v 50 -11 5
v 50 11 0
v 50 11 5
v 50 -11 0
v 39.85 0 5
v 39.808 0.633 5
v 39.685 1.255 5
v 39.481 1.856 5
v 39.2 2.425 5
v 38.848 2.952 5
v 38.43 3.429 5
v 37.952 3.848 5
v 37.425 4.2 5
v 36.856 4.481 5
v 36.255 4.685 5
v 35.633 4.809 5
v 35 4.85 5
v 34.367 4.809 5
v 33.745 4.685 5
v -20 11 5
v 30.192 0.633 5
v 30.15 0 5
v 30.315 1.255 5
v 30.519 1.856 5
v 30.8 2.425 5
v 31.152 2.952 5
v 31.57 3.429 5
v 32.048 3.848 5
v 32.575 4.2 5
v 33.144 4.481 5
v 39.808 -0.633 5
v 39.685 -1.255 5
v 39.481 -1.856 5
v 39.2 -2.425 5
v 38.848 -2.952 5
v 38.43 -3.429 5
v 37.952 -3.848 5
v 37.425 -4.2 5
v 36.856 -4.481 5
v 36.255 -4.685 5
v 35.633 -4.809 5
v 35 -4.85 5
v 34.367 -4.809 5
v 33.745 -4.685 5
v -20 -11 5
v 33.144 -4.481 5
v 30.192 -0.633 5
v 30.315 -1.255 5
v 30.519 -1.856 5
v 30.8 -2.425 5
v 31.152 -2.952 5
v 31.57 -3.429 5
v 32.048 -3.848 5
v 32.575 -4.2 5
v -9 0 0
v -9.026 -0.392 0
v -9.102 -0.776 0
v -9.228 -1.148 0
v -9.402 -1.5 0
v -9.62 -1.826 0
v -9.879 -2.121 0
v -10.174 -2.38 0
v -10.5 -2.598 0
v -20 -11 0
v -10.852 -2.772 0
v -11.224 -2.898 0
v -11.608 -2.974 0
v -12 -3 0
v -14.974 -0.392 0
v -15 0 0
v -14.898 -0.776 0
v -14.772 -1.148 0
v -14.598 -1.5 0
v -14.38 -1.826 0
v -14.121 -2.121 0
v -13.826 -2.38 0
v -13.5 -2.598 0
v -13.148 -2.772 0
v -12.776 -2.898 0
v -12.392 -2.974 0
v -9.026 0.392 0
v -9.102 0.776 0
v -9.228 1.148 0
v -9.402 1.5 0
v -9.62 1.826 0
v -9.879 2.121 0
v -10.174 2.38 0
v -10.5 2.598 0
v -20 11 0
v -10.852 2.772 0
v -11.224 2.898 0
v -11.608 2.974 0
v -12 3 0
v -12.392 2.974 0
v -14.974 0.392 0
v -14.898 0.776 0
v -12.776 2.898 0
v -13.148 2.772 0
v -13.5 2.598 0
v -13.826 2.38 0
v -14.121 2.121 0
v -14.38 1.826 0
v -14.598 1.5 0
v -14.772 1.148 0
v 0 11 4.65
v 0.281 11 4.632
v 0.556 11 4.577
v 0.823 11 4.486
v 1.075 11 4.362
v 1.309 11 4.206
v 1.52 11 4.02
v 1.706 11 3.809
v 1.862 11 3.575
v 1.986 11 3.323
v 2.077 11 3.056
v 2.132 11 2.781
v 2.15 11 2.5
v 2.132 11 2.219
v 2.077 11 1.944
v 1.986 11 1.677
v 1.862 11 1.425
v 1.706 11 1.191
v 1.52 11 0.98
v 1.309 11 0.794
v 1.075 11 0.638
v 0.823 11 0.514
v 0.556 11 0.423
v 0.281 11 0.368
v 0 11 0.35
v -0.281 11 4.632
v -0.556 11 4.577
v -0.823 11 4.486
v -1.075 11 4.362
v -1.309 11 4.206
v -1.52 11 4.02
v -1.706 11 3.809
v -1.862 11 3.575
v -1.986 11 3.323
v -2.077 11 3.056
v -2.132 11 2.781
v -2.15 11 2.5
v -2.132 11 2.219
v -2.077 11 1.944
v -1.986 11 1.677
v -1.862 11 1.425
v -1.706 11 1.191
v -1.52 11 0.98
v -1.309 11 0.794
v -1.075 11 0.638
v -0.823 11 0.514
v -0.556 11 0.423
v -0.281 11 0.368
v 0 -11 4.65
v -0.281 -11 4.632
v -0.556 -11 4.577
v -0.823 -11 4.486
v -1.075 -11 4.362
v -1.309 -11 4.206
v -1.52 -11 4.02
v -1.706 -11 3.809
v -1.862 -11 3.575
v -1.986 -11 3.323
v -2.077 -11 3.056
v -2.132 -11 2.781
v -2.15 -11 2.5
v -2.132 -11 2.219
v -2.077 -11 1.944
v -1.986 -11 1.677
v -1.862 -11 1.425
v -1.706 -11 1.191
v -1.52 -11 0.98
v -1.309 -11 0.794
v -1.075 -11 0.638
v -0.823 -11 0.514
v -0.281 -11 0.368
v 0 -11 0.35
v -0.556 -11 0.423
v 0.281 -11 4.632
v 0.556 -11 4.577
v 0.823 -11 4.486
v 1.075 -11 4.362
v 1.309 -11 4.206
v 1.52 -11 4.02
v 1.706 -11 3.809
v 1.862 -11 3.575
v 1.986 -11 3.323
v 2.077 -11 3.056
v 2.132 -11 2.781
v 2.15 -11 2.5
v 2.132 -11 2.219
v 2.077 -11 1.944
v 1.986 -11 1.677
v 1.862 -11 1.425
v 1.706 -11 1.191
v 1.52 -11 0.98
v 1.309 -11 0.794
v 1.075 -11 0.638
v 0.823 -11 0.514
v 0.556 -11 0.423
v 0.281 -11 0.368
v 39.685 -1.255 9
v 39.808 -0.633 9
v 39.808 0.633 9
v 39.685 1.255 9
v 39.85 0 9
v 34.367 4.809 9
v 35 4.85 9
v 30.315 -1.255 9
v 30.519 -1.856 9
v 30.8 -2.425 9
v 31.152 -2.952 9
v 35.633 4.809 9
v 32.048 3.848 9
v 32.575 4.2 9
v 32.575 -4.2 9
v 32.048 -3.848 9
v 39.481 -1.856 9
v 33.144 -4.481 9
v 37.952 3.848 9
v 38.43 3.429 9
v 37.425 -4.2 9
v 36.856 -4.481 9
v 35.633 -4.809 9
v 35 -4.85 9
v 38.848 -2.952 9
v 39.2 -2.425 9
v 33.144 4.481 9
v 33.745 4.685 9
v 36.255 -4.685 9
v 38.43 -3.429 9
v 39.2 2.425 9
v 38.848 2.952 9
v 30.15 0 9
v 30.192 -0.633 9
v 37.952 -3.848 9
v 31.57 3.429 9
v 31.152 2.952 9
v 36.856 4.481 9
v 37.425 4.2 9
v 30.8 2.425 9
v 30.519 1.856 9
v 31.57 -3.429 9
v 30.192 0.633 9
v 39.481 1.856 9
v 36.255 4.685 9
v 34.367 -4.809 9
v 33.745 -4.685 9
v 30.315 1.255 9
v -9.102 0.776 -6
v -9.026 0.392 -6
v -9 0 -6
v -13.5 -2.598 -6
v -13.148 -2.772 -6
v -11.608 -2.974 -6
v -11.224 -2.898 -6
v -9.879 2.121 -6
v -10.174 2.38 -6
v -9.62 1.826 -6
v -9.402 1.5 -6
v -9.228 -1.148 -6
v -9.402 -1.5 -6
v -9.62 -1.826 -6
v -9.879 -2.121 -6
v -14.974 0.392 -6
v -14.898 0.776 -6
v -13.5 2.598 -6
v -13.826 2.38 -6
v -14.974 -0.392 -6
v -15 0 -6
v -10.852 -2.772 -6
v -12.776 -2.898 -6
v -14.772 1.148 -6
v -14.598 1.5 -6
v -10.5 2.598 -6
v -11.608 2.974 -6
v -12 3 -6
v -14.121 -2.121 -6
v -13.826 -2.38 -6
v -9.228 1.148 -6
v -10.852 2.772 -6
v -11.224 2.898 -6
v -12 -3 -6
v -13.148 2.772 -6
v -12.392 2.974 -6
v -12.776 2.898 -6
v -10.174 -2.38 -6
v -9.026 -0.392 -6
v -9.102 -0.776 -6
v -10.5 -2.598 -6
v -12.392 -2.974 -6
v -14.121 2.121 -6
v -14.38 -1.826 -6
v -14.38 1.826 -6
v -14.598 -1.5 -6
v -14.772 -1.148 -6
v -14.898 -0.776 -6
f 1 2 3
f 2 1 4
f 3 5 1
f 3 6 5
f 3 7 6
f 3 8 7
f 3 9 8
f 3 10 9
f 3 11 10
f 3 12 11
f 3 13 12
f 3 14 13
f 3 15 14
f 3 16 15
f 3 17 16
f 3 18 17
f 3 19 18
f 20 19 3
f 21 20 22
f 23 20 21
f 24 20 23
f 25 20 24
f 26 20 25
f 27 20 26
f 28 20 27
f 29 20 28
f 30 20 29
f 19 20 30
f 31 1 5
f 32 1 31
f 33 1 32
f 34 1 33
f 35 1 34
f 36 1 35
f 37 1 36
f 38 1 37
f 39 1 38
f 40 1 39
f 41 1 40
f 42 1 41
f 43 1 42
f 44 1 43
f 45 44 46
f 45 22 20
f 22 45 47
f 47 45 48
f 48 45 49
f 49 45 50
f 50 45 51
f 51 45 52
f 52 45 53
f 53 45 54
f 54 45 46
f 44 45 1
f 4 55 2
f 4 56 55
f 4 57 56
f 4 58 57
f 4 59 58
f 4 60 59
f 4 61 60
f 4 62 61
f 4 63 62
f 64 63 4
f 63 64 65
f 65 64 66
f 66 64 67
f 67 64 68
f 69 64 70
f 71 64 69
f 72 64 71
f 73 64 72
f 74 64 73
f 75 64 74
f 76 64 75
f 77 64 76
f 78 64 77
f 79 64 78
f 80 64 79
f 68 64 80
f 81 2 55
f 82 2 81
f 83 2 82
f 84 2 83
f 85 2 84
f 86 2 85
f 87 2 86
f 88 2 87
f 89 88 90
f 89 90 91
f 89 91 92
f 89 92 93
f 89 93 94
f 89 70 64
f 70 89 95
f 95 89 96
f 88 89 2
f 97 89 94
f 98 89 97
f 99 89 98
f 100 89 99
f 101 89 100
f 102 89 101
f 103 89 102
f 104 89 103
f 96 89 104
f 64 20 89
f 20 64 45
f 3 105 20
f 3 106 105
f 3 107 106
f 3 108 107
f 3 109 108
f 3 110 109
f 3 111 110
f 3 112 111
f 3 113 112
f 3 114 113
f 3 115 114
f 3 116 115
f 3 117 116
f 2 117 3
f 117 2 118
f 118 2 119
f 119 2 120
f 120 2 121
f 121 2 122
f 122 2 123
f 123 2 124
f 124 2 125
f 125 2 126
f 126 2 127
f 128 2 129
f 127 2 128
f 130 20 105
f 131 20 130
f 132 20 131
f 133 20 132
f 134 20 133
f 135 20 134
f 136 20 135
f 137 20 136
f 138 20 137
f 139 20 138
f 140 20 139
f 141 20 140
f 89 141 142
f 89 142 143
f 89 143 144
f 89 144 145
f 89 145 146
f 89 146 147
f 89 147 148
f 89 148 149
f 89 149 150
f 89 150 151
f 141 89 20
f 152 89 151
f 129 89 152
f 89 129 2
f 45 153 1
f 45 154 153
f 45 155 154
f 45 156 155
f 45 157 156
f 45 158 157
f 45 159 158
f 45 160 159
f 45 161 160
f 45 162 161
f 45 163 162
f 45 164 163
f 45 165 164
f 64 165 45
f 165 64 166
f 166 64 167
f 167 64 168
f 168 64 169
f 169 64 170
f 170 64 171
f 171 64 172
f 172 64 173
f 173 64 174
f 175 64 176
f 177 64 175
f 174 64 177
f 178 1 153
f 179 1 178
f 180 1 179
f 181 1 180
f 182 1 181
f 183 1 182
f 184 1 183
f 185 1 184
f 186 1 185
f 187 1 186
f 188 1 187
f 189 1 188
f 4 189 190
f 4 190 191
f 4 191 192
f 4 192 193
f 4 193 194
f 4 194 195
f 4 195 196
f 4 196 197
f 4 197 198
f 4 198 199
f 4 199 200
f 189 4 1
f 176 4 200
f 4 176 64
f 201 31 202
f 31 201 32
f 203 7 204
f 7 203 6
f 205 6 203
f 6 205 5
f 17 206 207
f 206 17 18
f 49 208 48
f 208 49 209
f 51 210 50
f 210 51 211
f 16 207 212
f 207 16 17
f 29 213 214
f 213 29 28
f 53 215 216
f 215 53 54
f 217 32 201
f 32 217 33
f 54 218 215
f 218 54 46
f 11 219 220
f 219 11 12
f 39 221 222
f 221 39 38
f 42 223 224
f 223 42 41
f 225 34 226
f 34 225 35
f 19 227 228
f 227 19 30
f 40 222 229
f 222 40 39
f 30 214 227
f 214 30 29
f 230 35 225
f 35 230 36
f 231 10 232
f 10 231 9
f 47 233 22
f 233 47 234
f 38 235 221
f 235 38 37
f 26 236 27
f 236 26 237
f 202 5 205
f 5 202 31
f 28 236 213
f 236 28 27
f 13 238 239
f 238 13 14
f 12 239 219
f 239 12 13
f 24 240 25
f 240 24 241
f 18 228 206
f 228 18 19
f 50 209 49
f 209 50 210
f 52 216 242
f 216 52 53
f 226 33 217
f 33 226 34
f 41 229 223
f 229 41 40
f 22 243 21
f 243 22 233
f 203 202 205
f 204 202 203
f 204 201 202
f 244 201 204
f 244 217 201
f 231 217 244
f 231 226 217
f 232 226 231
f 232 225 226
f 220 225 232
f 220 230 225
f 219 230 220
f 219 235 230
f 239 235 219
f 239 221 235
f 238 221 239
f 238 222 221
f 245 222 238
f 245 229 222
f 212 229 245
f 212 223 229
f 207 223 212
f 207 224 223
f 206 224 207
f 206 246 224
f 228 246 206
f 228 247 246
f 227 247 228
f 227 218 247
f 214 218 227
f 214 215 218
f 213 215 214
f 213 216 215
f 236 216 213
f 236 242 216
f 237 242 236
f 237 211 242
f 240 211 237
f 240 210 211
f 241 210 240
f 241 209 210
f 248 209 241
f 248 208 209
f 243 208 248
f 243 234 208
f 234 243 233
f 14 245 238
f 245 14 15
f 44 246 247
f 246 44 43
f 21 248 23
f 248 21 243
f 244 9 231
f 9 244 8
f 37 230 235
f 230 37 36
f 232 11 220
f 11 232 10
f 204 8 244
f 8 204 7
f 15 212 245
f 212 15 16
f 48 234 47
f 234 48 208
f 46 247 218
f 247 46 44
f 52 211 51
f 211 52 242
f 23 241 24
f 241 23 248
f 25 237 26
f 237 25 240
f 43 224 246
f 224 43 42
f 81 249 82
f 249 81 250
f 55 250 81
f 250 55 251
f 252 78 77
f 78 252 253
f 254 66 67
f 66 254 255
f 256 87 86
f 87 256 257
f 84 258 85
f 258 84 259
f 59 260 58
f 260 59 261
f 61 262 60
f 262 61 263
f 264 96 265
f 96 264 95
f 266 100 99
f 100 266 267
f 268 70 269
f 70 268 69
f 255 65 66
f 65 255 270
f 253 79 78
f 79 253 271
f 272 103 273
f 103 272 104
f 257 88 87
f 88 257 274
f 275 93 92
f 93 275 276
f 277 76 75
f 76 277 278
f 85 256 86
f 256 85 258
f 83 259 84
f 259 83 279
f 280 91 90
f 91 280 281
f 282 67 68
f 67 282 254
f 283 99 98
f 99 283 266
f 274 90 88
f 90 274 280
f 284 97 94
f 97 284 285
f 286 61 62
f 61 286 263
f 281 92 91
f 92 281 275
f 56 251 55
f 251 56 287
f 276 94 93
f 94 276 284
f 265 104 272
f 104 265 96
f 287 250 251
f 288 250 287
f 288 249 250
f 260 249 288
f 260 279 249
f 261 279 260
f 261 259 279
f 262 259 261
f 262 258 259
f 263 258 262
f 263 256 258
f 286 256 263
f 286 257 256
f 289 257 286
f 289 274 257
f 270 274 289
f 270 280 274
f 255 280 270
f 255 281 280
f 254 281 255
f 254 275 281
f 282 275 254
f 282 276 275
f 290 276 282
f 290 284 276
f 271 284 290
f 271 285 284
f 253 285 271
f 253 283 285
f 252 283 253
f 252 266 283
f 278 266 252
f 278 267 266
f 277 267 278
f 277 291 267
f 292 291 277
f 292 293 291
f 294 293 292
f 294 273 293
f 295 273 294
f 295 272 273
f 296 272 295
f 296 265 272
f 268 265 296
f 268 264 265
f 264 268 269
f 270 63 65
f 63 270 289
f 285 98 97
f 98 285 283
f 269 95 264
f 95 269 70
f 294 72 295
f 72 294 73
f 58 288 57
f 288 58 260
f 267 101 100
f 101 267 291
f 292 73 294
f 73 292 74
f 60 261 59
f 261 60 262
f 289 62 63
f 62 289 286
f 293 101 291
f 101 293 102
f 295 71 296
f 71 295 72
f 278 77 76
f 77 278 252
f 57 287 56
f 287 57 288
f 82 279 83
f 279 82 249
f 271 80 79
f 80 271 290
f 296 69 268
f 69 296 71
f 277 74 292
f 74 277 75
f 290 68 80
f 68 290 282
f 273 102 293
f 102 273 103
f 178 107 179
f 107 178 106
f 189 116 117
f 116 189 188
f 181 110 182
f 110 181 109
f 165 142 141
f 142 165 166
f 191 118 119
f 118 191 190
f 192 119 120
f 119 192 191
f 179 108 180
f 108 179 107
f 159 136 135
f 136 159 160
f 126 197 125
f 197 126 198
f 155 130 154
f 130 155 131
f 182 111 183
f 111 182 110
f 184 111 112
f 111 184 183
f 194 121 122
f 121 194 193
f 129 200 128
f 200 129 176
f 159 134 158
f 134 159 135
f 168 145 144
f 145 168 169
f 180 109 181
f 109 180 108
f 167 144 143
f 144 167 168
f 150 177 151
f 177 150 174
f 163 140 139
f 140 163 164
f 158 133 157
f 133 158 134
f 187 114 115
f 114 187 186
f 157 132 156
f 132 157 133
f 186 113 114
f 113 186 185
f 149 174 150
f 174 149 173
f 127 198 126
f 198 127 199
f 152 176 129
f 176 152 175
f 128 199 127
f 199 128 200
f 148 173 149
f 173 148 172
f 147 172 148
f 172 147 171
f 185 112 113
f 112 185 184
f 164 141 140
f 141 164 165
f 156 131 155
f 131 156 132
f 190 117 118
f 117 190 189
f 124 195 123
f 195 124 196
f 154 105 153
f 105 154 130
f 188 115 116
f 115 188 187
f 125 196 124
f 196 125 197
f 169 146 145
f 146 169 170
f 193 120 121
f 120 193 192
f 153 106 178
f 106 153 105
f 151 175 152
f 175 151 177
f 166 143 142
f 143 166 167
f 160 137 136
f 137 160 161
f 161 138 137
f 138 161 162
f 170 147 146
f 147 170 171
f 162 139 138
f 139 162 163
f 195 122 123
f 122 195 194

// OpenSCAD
// file: params.scad
// Shared measurements for the hookswitch assembly (handset / hook / cradle / switch).
// MEASURE YOUR ACTUAL HANDSET AND SWITCH AND EDIT THESE before printing —
// defaults are typical old-telephone-handset / generic microswitch dimensions.

// --- Handset ---
handset_barrel_d   = 34;   // diameter of the handset where it rests in the cradle prongs
handset_rest_len   = 60;   // length of barrel section that sits in the saddle

// --- Hook lever (see-saw pressed down by handset weight) ---
lever_length       = 70;
lever_width        = 22;
lever_thickness    = 5;
pivot_pin_d        = 4;    // diameter of the pivot rod/pin (e.g. M4 bolt or steel rod)
pivot_offset       = 20;   // distance from lever's front edge to the pivot axis

// --- Microswitch (generic mini SPDT lever switch, e.g. Omron V-15x / KW-11) ---
switch_body_w      = 12.8;
switch_body_d      = 6.4;
switch_body_h      = 6.4;
switch_mount_hole_spacing = 10;  // center-to-center of the two mounting screw holes
switch_screw_d     = 2.2;        // clearance hole for M2 self-tap

// --- General ---
wall               = 3;
clearance          = 0.3;  // fit clearance between mating printed parts
$fn                = 48;
// main file
// "hook" part: see-saw lever. Handset weight on the front (phone_saddle end)
// pushes the lever down; the rear underside boss presses the microswitch
// plunger. Lifting the handset lets a spring (or the switch's own return
// spring) rock it back up.
include <params.scad>

module hook_lever() {
  difference() {
    union() {
      // main beam
      translate([-pivot_offset, -lever_width/2, 0])
        cube([lever_length, lever_width, lever_thickness]);

      // boss on top, front end, for phone_saddle to snap onto
      translate([lever_length - pivot_offset - 15, 0, lever_thickness])
        cylinder(d = 10 - clearance, h = 4);

      // boss on underside, rear end, that contacts the switch plunger
      translate([-pivot_offset + 8, 0, -6])
        cylinder(d = 6, h = 6);
    }

    // pivot pin hole, through the beam at x=0
    translate([0, 0, lever_thickness/2])
      rotate([90, 0, 0])
        cylinder(d = pivot_pin_d + clearance, h = lever_width + 2, center = true);
  }
}

hook_lever();
